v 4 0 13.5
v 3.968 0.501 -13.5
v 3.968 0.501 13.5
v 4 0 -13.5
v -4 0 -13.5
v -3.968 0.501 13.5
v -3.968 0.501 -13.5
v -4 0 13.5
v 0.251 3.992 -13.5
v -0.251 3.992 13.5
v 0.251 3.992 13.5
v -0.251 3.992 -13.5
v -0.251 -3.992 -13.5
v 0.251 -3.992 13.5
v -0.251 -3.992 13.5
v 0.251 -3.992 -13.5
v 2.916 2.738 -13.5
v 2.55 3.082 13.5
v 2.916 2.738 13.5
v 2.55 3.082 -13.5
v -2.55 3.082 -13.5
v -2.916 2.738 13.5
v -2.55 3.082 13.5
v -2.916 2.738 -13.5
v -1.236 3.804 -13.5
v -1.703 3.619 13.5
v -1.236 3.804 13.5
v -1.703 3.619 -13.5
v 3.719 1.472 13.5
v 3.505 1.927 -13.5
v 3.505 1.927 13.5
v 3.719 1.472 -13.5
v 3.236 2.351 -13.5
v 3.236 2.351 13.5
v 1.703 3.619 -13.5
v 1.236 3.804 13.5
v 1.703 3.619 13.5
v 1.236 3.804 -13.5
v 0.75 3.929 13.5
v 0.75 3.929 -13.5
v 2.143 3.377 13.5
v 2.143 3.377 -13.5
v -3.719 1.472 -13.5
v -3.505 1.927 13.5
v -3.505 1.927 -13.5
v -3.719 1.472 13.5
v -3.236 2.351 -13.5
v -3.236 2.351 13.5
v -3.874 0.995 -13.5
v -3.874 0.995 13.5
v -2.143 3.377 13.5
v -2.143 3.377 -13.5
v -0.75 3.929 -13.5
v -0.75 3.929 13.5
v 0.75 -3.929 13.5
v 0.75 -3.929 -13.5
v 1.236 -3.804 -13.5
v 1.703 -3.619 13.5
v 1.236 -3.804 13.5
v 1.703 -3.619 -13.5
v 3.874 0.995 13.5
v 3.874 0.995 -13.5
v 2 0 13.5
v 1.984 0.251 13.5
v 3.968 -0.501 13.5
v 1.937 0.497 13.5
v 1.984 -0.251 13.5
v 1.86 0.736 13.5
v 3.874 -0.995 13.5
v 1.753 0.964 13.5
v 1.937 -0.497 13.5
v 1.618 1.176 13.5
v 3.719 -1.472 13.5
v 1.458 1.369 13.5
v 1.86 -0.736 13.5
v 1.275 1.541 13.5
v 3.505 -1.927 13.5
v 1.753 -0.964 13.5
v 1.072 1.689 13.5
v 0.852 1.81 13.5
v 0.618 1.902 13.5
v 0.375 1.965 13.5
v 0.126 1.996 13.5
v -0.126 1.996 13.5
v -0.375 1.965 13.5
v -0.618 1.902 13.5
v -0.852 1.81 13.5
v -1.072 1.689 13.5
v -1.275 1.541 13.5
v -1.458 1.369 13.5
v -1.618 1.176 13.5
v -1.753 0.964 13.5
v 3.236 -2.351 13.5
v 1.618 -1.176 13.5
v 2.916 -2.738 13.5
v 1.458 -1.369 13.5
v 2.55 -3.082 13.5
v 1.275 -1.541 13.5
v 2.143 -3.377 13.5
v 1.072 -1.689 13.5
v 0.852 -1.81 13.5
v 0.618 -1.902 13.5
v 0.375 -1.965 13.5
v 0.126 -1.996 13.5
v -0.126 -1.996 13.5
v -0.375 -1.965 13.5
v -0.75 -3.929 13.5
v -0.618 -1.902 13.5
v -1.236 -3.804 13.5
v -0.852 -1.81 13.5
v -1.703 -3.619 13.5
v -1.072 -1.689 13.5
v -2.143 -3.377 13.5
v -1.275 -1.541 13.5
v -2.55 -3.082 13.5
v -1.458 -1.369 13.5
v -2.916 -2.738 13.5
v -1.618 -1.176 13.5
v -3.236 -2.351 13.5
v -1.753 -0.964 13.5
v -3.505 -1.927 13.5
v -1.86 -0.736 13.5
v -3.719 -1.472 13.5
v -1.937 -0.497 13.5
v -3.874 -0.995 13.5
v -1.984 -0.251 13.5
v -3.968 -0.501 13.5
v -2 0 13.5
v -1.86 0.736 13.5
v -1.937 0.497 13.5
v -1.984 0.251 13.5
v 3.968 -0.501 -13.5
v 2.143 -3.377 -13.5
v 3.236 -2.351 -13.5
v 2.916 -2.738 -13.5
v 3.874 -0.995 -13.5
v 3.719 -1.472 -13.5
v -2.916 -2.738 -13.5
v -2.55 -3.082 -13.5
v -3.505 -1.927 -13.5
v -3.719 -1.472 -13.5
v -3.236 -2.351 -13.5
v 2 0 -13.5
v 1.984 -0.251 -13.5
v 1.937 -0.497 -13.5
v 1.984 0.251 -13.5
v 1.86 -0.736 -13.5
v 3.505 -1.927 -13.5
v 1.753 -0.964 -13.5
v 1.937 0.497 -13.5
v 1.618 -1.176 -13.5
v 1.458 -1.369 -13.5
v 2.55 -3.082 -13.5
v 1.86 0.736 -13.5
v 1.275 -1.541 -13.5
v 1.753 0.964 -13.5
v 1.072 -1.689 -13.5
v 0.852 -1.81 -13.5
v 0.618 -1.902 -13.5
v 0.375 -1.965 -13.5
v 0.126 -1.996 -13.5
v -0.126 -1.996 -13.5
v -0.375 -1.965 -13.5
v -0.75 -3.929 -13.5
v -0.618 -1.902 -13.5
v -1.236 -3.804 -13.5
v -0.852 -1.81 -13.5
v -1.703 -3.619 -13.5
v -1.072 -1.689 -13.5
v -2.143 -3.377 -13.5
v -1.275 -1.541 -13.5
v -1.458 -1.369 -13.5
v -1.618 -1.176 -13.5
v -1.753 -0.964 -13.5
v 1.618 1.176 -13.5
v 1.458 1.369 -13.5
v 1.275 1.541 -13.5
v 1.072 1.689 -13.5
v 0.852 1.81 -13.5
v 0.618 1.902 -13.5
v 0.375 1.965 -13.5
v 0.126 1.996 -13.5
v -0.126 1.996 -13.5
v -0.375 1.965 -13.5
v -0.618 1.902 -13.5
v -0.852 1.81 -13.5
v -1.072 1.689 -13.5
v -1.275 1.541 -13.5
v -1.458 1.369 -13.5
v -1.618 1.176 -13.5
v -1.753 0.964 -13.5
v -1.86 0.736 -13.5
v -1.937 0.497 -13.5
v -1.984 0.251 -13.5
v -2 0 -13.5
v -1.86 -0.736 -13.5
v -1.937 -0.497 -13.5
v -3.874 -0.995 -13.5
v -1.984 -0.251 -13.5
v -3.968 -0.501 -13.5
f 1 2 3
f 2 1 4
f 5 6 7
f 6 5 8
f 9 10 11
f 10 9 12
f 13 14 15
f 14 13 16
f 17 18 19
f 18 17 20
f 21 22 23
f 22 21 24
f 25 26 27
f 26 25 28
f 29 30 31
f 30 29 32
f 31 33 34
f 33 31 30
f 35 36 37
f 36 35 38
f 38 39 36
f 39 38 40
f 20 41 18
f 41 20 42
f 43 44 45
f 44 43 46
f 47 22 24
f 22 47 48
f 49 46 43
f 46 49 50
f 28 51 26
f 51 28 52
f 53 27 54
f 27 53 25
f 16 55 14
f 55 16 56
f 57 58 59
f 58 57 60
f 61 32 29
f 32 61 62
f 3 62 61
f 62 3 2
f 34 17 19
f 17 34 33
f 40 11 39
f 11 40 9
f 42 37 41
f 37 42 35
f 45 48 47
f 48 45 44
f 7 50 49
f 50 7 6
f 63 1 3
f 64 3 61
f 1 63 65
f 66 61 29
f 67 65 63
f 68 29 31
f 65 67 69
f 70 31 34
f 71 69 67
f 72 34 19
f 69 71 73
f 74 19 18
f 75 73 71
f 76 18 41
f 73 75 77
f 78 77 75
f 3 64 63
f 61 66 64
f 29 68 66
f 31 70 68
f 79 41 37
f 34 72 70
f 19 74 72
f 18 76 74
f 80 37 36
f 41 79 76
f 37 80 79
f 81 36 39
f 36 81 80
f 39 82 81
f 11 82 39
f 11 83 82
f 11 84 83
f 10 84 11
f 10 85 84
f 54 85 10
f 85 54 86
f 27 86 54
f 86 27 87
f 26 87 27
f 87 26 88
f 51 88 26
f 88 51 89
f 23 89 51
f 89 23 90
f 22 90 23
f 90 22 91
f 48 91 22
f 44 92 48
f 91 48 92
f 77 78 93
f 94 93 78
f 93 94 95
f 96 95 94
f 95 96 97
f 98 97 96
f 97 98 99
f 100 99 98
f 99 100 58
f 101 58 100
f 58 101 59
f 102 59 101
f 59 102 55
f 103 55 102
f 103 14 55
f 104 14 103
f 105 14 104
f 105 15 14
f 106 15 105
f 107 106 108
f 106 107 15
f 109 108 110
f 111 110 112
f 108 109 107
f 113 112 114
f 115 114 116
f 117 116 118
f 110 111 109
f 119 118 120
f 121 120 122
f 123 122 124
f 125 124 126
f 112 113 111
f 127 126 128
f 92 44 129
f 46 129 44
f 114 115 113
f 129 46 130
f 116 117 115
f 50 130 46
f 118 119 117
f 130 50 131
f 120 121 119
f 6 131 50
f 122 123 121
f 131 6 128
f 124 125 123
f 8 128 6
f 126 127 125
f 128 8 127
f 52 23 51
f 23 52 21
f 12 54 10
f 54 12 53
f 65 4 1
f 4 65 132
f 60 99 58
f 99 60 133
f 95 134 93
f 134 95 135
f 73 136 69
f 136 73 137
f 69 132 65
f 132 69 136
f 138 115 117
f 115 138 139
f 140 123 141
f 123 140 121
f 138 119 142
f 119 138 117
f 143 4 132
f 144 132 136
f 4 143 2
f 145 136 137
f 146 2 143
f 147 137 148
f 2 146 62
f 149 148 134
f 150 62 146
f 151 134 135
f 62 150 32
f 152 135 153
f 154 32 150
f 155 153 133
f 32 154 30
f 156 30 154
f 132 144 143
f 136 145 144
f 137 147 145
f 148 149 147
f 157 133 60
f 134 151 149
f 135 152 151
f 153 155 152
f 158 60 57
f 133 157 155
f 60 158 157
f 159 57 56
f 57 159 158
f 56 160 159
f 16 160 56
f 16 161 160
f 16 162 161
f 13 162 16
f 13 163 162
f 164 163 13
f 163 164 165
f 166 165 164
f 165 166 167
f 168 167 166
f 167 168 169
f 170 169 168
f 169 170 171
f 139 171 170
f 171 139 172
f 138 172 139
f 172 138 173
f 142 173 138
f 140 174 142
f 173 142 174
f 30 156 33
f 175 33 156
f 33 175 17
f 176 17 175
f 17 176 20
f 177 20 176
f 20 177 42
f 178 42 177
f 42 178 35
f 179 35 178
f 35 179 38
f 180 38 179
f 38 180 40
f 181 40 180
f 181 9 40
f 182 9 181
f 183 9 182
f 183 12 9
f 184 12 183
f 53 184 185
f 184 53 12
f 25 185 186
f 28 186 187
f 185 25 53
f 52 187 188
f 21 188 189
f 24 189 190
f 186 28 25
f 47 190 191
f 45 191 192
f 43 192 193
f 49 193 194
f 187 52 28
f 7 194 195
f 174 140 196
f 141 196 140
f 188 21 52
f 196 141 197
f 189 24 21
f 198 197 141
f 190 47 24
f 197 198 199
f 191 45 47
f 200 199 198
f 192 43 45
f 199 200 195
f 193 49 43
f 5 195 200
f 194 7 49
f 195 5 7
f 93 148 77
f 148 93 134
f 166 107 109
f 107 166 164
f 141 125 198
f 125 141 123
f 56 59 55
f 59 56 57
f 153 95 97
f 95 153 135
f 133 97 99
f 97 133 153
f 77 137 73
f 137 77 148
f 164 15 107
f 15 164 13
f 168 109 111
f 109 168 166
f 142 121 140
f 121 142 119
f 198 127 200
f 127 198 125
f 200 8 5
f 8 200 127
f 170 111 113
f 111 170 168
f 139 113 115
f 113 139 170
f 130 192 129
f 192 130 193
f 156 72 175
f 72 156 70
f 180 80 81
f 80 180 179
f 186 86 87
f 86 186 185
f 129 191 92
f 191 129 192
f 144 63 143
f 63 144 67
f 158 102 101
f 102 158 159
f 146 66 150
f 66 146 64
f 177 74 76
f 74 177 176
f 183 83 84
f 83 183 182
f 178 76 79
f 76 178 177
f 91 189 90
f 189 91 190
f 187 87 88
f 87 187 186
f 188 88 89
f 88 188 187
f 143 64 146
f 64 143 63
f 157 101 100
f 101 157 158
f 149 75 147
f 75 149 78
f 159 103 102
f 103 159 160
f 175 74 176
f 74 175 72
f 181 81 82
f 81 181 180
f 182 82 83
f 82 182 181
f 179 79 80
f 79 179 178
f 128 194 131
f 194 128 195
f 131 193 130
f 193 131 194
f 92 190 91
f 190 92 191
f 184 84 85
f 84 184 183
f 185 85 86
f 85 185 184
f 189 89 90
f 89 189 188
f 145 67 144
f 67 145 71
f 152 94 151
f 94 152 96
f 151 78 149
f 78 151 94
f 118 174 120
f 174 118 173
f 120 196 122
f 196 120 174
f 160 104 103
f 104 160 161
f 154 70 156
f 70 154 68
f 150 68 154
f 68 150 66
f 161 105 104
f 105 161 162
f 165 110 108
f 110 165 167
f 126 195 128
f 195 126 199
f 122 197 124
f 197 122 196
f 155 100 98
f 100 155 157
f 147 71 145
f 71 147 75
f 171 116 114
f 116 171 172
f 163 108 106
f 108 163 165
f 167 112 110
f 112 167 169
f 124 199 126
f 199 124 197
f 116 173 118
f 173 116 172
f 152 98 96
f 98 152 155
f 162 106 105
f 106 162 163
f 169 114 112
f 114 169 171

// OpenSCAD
$fn = 50;


difference() {
	union() {
		translate(v = [0, 0, -13.5000000000]) {
			cylinder(h = 27, r = 4.0000000000);
		}
	}
	union() {
		translate(v = [0, 0, -100.0000000000]) {
			cylinder(h = 200, r = 2);
		}
	}
}
